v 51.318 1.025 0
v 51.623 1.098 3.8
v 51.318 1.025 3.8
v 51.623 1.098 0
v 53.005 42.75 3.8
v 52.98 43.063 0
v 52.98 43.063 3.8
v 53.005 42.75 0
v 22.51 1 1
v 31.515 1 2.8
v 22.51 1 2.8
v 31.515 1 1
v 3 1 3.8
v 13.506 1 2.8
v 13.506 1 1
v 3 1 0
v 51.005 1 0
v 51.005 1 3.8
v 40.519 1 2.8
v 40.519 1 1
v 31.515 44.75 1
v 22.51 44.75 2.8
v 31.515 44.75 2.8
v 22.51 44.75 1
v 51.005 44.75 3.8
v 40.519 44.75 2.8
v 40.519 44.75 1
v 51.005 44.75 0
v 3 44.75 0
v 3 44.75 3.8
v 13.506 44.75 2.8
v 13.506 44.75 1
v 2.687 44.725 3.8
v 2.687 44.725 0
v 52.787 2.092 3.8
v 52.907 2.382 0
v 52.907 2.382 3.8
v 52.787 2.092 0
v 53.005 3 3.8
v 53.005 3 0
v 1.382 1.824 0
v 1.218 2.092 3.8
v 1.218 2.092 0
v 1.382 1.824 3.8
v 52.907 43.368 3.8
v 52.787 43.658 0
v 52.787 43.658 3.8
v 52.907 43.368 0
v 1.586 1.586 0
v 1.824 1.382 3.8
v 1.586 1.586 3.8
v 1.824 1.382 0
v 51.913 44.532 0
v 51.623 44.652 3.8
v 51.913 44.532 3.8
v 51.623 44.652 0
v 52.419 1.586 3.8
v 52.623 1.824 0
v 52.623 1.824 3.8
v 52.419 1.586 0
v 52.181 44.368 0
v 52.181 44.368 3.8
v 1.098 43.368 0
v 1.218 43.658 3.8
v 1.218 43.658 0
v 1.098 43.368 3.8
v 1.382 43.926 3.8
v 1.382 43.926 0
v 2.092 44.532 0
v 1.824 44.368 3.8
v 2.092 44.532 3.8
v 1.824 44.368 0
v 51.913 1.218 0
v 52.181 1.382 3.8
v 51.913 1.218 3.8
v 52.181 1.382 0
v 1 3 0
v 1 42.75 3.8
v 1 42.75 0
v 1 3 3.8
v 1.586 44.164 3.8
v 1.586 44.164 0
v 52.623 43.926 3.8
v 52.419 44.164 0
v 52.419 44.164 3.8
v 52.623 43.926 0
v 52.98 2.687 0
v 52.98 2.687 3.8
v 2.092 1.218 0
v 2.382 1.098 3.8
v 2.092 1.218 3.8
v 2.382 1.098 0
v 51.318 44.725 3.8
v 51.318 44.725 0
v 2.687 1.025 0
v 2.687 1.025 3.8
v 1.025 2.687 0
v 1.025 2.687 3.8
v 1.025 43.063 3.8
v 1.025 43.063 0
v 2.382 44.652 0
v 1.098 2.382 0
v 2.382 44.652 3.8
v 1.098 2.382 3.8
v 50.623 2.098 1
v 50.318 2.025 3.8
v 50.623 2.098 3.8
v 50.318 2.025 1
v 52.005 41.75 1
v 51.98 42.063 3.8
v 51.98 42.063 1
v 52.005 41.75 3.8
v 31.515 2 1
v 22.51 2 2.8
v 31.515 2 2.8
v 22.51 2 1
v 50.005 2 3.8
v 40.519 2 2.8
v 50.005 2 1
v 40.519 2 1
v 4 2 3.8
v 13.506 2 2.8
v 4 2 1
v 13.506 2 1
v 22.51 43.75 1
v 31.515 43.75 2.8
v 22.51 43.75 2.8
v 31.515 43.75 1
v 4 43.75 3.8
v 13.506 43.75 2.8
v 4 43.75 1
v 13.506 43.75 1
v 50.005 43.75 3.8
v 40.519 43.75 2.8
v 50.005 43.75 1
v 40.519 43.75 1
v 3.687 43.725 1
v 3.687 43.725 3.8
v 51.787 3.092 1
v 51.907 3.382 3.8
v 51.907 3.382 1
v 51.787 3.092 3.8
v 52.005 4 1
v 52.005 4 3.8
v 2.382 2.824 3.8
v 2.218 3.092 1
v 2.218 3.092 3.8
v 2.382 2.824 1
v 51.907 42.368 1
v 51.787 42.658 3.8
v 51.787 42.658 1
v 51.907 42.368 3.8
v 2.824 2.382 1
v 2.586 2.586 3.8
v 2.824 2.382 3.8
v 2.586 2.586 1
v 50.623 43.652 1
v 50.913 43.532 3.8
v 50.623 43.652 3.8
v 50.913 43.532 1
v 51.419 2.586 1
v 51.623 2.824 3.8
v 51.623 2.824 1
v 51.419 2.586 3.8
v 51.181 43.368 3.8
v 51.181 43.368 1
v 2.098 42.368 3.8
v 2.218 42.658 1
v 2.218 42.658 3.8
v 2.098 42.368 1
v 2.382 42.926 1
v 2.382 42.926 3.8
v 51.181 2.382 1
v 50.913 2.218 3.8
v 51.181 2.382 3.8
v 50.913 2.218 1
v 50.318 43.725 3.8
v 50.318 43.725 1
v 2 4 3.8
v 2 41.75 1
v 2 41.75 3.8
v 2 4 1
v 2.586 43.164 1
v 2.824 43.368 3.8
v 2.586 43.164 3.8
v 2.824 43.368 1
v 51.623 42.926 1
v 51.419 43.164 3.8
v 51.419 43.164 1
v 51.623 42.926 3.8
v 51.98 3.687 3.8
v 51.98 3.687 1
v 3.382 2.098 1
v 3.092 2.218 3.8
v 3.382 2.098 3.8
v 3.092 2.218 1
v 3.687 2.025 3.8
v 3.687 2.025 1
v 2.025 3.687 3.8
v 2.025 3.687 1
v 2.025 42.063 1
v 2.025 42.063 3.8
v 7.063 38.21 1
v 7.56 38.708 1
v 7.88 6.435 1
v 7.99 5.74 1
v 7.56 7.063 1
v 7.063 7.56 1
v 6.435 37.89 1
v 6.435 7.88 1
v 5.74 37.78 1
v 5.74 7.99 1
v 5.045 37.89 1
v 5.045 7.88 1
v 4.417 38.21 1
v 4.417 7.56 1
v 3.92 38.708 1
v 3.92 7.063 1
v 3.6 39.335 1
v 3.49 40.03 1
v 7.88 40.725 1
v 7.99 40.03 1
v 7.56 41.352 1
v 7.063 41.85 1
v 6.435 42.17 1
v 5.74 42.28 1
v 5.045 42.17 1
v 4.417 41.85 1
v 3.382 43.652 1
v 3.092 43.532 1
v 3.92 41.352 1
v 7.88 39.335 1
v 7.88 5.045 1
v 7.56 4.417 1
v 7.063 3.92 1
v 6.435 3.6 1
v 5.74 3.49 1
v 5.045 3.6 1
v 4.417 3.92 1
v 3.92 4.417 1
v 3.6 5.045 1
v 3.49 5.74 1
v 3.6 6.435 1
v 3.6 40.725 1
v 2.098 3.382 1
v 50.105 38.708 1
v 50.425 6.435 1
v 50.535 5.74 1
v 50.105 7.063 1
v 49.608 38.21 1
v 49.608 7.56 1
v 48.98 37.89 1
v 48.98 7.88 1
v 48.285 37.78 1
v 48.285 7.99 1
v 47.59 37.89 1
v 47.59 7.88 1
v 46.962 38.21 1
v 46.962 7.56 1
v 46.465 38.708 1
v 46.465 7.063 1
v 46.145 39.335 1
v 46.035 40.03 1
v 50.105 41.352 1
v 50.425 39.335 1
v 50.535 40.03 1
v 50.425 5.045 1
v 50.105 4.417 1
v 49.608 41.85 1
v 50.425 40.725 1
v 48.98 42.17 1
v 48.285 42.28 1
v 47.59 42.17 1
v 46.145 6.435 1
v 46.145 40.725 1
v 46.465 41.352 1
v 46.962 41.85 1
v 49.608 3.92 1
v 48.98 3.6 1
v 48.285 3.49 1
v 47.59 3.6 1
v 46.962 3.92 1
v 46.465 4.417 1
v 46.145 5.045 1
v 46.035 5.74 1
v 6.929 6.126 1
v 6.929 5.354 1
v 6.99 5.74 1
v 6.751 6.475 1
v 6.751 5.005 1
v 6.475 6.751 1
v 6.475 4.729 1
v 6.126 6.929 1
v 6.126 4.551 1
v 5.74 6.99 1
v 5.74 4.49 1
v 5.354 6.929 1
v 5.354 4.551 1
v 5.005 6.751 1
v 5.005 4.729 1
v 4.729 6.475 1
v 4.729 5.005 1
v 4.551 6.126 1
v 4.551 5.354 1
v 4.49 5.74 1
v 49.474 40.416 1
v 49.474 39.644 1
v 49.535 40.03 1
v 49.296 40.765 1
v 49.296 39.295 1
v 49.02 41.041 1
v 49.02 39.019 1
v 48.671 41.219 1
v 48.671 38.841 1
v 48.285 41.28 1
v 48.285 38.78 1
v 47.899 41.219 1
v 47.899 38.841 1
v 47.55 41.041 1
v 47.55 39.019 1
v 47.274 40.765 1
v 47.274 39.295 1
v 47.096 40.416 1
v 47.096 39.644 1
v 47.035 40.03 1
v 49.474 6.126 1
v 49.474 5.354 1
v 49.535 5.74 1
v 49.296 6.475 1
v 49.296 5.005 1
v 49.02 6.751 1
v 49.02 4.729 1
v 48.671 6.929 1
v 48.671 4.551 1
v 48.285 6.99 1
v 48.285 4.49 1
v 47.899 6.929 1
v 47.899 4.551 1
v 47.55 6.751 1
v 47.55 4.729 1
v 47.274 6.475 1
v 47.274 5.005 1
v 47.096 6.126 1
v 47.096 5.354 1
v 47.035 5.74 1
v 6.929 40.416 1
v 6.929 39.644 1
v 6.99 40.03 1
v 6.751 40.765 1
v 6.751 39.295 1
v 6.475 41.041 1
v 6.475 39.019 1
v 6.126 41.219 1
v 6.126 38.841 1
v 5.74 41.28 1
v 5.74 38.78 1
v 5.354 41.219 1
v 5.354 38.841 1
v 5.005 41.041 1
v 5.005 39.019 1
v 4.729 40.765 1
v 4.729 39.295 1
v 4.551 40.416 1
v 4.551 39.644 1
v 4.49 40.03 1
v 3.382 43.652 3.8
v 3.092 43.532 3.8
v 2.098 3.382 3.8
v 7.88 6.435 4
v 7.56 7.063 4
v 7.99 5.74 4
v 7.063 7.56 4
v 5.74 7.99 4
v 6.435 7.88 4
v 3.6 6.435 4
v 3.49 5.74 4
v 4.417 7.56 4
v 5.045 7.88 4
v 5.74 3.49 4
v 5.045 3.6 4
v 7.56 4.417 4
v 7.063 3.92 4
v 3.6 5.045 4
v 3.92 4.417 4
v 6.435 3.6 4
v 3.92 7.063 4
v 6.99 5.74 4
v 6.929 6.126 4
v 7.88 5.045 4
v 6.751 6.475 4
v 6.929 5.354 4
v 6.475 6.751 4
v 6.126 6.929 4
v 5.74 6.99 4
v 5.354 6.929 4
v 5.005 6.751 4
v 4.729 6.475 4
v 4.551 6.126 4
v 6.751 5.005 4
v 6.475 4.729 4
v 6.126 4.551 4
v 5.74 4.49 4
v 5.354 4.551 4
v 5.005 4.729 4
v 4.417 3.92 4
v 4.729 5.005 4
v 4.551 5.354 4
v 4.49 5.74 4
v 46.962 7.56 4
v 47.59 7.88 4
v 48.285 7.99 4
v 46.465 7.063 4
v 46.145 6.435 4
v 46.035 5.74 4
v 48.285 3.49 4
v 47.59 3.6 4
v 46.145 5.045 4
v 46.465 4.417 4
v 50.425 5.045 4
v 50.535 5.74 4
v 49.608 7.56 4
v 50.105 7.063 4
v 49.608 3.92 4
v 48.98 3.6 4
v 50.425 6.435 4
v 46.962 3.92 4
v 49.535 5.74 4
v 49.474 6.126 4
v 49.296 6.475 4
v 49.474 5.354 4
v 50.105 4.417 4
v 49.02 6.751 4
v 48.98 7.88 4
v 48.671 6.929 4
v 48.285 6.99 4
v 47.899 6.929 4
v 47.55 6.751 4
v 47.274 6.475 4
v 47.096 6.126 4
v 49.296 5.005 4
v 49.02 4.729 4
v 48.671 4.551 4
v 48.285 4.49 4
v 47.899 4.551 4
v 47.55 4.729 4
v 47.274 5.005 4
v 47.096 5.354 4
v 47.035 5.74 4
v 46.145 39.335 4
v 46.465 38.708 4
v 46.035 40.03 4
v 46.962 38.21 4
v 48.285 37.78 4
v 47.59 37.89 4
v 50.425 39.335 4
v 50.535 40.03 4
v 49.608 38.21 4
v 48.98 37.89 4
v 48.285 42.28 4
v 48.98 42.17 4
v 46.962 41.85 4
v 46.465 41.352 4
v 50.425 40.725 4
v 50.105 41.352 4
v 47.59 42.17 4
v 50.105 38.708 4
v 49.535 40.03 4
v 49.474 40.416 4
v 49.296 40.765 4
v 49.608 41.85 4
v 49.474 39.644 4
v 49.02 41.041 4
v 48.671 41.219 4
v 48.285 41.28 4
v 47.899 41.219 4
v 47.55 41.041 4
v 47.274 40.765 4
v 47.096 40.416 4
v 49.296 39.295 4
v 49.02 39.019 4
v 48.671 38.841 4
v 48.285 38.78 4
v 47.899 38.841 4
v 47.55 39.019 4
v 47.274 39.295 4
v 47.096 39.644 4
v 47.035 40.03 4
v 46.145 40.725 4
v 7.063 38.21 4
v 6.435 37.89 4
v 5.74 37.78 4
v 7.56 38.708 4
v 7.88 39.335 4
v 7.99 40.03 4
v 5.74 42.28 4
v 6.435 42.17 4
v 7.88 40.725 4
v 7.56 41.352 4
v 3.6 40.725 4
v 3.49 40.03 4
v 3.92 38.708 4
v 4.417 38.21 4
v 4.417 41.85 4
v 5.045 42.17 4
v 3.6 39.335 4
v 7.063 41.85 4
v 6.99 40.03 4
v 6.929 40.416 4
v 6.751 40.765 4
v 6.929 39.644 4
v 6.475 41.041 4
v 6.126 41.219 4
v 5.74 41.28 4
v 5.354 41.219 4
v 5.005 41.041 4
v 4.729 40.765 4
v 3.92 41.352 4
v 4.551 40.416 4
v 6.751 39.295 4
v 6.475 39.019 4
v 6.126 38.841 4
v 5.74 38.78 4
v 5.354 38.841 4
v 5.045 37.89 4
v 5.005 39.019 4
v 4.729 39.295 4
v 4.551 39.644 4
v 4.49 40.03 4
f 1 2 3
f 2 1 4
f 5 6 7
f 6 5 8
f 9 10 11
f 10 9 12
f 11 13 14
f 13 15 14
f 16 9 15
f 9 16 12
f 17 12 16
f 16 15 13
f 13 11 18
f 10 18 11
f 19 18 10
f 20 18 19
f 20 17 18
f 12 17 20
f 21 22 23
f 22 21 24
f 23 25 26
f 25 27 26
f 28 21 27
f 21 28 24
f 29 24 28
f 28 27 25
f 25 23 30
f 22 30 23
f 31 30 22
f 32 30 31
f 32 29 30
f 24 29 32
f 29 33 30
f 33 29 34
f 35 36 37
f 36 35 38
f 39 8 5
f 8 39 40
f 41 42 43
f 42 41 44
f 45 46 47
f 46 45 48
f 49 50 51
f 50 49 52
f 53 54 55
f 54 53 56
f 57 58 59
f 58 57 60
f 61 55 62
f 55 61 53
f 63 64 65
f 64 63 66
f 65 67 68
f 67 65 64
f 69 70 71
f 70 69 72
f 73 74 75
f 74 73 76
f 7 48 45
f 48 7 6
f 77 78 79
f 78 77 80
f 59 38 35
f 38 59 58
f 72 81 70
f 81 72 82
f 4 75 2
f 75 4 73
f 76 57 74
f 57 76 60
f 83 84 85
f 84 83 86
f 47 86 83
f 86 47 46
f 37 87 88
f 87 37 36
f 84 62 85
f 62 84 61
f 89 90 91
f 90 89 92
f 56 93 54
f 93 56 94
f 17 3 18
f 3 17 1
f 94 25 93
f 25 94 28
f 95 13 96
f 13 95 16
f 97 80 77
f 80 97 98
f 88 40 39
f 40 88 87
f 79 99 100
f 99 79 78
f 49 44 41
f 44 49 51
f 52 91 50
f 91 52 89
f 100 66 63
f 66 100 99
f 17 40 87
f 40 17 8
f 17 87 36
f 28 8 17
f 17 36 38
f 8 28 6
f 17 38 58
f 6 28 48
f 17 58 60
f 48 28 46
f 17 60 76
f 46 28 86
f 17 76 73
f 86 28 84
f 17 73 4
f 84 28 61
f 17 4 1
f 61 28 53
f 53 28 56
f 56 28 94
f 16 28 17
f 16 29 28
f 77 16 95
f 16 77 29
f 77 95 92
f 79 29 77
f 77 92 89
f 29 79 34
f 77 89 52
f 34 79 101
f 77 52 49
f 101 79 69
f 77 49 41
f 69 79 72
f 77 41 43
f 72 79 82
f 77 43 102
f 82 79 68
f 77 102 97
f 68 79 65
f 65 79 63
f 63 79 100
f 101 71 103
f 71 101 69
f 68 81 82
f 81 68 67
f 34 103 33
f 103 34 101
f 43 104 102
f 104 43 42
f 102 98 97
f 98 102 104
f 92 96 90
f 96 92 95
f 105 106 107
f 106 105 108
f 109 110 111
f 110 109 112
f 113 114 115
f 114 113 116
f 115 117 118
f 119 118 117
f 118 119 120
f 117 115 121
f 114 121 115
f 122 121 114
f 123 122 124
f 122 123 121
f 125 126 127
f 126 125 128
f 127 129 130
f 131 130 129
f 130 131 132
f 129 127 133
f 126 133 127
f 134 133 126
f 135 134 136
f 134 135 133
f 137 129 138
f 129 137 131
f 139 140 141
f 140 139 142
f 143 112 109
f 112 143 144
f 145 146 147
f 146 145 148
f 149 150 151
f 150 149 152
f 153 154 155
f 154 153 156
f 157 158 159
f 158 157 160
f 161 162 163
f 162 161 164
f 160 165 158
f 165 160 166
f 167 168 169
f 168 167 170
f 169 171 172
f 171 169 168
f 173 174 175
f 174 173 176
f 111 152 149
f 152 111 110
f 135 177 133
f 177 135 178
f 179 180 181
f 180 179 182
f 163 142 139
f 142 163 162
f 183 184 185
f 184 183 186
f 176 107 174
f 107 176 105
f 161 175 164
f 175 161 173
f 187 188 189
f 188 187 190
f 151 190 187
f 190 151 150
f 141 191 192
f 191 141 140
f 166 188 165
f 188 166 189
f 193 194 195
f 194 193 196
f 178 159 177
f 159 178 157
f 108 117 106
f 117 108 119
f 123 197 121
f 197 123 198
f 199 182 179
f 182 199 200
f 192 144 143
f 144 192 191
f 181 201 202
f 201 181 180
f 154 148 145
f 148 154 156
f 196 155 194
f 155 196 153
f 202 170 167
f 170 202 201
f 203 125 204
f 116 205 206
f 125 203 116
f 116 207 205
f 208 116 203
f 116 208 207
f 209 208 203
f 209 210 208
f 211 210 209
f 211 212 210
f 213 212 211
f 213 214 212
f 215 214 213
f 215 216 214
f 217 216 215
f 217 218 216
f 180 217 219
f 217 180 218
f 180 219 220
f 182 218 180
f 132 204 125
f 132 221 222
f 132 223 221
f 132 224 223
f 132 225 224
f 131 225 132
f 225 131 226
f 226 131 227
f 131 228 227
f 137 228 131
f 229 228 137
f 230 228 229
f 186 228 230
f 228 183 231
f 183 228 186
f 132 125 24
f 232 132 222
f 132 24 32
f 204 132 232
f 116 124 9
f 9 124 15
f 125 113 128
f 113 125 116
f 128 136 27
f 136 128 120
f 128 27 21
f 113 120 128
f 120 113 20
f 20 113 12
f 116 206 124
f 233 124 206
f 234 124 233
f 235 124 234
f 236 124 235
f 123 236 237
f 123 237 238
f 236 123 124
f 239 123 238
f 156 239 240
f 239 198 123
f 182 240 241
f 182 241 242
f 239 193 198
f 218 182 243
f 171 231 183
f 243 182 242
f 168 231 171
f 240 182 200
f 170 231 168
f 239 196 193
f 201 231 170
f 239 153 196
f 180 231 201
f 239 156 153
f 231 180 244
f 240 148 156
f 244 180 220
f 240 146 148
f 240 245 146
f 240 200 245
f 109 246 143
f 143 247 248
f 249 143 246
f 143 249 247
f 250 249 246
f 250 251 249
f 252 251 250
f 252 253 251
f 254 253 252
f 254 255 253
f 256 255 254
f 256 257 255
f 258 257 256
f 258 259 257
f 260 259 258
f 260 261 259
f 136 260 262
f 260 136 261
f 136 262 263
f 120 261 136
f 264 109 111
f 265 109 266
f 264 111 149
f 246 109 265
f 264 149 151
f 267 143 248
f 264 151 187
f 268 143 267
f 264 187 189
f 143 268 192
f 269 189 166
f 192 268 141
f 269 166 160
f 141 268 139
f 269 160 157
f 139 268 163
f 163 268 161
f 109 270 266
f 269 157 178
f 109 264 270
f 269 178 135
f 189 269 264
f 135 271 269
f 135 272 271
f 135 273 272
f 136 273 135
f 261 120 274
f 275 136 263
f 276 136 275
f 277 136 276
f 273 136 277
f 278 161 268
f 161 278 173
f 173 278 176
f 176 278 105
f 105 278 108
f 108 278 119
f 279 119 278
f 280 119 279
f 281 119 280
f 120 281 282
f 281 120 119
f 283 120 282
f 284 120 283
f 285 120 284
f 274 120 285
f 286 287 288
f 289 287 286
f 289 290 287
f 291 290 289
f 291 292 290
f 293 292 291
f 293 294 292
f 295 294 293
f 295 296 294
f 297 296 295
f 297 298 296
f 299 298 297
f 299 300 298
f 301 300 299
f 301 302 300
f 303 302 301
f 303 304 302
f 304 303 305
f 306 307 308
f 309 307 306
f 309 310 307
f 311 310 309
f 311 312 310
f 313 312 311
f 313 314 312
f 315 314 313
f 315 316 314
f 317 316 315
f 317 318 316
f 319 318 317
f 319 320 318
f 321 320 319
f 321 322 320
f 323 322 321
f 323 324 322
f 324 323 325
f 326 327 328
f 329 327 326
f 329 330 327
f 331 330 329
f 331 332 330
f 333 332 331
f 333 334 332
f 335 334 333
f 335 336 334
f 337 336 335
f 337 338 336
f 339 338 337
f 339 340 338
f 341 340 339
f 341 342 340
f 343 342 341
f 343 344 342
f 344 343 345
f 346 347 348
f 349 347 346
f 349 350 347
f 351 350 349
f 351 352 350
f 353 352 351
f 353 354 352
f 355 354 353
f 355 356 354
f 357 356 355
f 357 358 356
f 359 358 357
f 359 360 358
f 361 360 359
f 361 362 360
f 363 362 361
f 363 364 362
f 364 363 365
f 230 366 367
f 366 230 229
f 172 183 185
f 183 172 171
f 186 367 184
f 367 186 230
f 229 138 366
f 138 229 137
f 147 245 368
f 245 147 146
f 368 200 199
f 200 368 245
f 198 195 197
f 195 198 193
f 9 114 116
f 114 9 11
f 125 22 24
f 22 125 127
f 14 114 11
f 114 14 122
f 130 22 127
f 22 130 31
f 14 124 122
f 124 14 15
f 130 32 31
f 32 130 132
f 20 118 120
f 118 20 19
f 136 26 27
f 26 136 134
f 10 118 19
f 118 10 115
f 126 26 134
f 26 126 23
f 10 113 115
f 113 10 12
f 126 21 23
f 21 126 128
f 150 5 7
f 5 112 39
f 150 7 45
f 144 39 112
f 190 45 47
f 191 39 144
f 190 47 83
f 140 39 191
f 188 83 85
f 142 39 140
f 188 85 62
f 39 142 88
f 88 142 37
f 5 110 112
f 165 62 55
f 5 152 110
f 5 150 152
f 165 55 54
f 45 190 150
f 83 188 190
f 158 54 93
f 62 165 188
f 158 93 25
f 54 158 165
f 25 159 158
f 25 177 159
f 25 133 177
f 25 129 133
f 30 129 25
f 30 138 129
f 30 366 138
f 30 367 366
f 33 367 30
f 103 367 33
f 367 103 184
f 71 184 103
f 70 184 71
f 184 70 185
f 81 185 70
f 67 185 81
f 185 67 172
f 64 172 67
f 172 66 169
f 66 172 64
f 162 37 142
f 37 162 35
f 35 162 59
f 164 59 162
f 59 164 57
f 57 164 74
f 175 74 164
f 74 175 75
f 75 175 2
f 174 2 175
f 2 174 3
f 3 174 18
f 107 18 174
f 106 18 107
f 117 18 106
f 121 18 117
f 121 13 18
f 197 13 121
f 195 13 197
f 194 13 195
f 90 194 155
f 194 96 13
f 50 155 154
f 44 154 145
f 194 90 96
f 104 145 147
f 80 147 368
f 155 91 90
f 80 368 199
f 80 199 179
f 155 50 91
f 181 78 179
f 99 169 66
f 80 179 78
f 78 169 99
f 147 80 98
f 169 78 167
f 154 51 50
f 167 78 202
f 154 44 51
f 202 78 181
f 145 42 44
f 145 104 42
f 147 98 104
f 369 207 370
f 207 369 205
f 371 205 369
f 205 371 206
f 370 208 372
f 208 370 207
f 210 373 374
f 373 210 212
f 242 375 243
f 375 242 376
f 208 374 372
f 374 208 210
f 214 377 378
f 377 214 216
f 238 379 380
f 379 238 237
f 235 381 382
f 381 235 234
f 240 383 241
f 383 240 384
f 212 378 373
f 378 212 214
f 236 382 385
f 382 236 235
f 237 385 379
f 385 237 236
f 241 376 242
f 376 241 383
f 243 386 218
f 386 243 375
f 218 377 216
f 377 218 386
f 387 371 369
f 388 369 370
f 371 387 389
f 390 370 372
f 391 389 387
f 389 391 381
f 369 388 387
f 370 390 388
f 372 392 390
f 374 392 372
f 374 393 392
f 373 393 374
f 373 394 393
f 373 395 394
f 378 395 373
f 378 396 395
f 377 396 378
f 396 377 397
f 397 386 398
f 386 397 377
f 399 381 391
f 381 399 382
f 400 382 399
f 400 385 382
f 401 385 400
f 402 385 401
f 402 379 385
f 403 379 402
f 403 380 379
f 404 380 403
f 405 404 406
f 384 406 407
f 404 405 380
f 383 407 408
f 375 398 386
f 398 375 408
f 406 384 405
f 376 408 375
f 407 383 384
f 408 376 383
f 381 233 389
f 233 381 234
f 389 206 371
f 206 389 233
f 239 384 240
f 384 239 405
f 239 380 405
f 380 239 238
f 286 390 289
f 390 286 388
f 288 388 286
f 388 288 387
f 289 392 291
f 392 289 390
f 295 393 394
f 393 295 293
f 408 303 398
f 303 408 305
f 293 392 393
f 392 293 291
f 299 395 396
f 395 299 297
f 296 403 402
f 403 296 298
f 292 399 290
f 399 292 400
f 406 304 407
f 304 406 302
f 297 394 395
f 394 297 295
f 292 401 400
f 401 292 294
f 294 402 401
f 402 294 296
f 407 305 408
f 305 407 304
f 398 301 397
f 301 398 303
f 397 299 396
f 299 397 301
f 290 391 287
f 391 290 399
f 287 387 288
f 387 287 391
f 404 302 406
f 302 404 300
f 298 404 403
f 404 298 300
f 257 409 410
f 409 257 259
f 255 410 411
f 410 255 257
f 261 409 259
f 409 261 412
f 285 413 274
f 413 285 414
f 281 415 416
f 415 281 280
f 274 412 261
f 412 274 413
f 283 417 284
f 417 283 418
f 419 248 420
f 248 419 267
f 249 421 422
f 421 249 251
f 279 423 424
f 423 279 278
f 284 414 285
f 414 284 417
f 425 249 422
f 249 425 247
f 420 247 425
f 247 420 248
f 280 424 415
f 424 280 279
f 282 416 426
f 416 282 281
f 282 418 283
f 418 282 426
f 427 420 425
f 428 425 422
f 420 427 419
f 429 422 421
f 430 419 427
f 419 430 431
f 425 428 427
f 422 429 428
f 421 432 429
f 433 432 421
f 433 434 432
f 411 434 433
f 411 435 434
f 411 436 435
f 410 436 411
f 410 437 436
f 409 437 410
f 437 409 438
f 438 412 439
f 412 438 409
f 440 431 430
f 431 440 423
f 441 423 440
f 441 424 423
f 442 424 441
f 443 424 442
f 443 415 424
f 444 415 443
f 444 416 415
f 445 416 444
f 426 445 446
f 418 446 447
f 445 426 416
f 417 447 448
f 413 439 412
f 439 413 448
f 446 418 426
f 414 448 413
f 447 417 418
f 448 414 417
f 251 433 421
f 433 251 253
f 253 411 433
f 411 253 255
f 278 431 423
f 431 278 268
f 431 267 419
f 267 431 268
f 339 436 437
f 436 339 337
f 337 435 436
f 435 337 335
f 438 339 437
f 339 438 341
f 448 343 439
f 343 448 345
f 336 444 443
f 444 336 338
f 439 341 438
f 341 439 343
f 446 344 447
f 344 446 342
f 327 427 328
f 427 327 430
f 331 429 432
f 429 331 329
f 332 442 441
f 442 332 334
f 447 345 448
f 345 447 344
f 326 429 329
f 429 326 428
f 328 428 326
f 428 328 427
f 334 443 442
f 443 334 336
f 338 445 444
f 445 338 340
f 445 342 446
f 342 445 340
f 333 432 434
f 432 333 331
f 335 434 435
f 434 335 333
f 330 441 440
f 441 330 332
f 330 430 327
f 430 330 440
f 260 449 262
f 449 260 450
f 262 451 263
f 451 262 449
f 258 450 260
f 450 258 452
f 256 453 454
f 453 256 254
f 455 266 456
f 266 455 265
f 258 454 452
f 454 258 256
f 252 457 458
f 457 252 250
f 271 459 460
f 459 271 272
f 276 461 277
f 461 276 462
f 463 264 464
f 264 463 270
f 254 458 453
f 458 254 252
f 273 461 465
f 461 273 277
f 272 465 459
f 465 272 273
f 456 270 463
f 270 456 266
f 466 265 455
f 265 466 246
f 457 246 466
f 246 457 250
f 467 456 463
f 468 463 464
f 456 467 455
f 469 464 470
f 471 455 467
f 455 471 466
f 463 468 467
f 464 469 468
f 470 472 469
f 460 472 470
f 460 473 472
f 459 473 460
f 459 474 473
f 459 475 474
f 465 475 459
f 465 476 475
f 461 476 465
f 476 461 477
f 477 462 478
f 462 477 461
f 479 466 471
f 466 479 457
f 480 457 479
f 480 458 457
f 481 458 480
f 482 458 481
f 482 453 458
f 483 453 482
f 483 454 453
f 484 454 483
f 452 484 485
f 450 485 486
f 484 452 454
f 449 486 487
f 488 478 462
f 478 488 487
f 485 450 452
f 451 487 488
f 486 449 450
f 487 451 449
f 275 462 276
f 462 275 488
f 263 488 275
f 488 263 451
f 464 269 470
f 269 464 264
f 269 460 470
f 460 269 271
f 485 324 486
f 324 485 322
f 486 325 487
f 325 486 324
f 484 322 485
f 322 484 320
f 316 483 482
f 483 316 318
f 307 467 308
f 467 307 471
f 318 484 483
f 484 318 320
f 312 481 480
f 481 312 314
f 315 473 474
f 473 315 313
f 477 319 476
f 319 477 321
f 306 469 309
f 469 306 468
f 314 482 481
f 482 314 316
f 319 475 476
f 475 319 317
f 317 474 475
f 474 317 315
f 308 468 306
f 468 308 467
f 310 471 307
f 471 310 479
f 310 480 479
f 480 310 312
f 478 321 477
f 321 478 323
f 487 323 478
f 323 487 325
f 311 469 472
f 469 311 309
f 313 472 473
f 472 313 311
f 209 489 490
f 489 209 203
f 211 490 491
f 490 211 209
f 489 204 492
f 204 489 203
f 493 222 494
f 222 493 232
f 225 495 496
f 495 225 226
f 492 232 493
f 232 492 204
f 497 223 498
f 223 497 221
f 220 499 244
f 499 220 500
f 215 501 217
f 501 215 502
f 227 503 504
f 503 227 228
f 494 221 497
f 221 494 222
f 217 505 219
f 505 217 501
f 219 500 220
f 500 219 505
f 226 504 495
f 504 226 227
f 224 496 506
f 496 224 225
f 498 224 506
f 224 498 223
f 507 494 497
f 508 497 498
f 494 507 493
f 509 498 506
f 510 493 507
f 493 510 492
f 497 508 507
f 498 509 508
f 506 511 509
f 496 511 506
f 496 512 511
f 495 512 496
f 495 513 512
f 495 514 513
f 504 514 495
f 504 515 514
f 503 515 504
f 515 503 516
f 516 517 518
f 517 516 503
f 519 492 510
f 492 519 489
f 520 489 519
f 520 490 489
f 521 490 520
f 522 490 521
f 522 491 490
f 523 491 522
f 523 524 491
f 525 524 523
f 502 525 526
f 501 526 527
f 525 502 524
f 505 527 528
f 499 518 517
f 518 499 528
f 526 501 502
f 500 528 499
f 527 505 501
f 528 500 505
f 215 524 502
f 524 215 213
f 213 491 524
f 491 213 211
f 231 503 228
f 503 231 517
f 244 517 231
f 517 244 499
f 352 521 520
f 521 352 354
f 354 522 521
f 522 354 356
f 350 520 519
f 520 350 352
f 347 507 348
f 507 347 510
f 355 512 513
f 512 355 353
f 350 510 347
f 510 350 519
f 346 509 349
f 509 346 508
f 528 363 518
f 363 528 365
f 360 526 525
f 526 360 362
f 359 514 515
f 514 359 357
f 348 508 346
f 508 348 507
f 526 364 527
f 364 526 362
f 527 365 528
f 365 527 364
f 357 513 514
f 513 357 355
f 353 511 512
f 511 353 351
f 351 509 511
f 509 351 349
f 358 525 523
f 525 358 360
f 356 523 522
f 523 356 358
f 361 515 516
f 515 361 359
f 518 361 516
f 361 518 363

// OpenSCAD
// file: ProjectBox/oled91.scad
// Copyright (c) 2024 Chris Lee and contibuters.
// Licensed under the MIT license. See LICENSE file in the project root for details.

// This is a simple model of a 0.91" OLED module.
// E.g., https://www.aliexpress.us/item/2251832485915041.html
module oled91() {
  s = inch * 0.1;
  pin_len = 4;
  color("silver") {
    for (i = [0: 3]) {
      translate([s*i+pad_space, pad_space/2, -pin_len]) cube([0.25, 0.25, pin_len]);
    }
  }
  color("gray") cube([12, 38, 1]);
  translate([0, 5.5, 1]) color("black") cube([12, 28, 1]);
}
// file: ProjectBox/util.scad
// Copyright (c) 2024 Chris Lee and contibuters.
// Licensed under the MIT license. See LICENSE file in the project root for details.

include <MCAD/units.scad>

ones = [1, 1, 1];

module RX(angle) {
  rotate(angle, X) children();
}
module RY(angle) {
  rotate(angle, Y) children();
}
module RZ(angle) {
  rotate(angle, Z) children();
}
module TX(dist) {
  translate(X*dist) children();
}
module TX(dist) {
  translate(X*dist) children();
}
module TY(dist) {
  translate(Y*dist) children();
}
module TZ(dist) {
  translate(Z*dist) children();
}

// x-extra and y-extra adjust the x/y offset at the far-x and far-y corners.
module at_corners(dims, corner_offset, to_draw=undef, x_extra=0.0, y_extra=0.0) {
  o = corner_offset;
  if (!to_draw || to_draw[0]) translate([o, o, 0]) children();
  if (!to_draw || to_draw[1]) translate([dims[0]-o+x_extra, o, 0]) rotate(90, Z) children();
  if (!to_draw || to_draw[2]) translate([dims[0]-o+x_extra, dims[1]-o+y_extra, 0])
				rotate(180, Z) children();
  if (!to_draw || to_draw[3]) translate([o, dims[1]-o+y_extra, 0]) rotate(270, Z) children();
}
// file: ProjectBox/screw_tab.scad
// Copyright (c) 2024 Chris Lee and contibuters.
// Licensed under the MIT license. See LICENSE file in the project root for details.

include <MCAD/units.scad>

// Screw tab is drawn in the y-direction (attached on -Y side).
module screw_tab(tab_width=10, thickness=2, screw_radius=2) {
  $fn=40;
  dz = thickness;
  sd = tab_width;
  sr = tab_width / 2;
  translate([-sr, -epsilon, 0]) difference() {
    union() {
      cube([sd, sr, dz]);
      translate([sr, sr, 0]) cylinder(dz, sr, sr);
    }
    translate([sr, sr, -epsilon]) cylinder(dz+1, screw_radius, screw_radius);
  }
}
// file: ProjectBox/rounded_box.scad
// Copyright (c) 2024 Chris Lee and contibuters.
// Licensed under the MIT license. See LICENSE file in the project root for details.

module rounded_box(dims, r) {
  x = dims[0];
  y = dims[1];
  z = dims[2];
  module cyl() {
    cylinder(z, r, r, $fn=40);
  }
  if (r == 0) {
    cube(r);
  } else {
    hull() {
      translate([r, r, 0]) cyl();
      translate([x-r, r, 0]) cyl();
      translate([x-r, y-r, 0]) cyl();
      translate([r, y-r, 0]) cyl();
    }
  }
}
// file: board.scad
// Copyright (c) 2026 Chris Lee and contributors.
// Licensed under the MIT license. See LICENSE file in the project root for details.

include <ProjectBox/project_box.scad>
include <ProjectBox/oled91.scad>
include <gui.scad>

board_thickness = 1.6;
// mm between pads in perf-board (1/10 inch)
pad_space = 2.54;
// This is the size of the PCB, for use in the design of the EBox.
board_dims = [18.75 * pad_space, 15.5 * pad_space, board_thickness];
// This is the distance of each edge of the PCB to the center of the
//  screw holes for mounting the board at each corner.
mount_offset = pad_space;

// This is the position of the OLED screen with respect to the PCB.
module room133_to_oled_frame() {
  u = pad_space;
  translate([u*8.1, 1, 12]) children();
}

// This is a model of the Room133 PCBA with OLED screen, for use in EBox design.
module Room133_board() {
  // Board imported from KiCad (VRML) -> meshlab.
  translate([board_dims[0]/2, board_dims[1]/2, board_dims[2]/2]) color("white")
    import(file="Room133.stl", convexity=3);

  // Optionally add the OLED screen
  if (oled) {
    room133_to_oled_frame() oled91();
  }
}
// file: ProjectBox/shtc3_window.scad
// Copyright (c) 2024 Chris Lee and contibuters.
// Licensed under the MIT license. See LICENSE file in the project root for details.

module shtc3_window(offset, space_above_board, wall, negative, z_gap = 0.0) {
  sz = [3, 3, 1];
  translate(offset) {
    if (negative) {
      translate([0, 0, z_gap-1]) {
	cube([sz[0], sz[1], space_above_board+wall+2-z_gap]);
      }
    } else {
      translate([-wall, -wall, z_gap+epsilon]) {
	cube([sz[0] + 2*wall, sz[1] + 2*wall, space_above_board-z_gap]);
      }
    }
  }
}
// file: ProjectBox/mounts.scad
// Copyright (c) 2024 Chris Lee and contibuters.
// Licensed under the MIT license. See LICENSE file in the project root for details.

module screw_mount(height, wall, screw_radius) {
  $fn = 20;
  difference() {
    cylinder(height, screw_radius+wall, screw_radius+wall);
    cylinder(height+epsilon, screw_radius, screw_radius);
  }
}
// file: ProjectBox/project_box.scad
// Copyright (c) 2024 Chris Lee and contibuters.
// Licensed under the MIT license. See LICENSE file in the project root for details.

include <MCAD/units.scad>
include <rounded_box.scad>
include <screw_tab.scad>
use <util.scad>

bump_d = 0.8;

module in_board_frame(outer_dims, board_dims, space_below_board) {
  translate([(outer_dims[0] - board_dims[0])/2,
	     (outer_dims[1] - board_dims[1])/2,
	     space_below_board])
    children();
}

default_tab_len = 10;
function tab_length(dim, num_tabs=2) = min(default_tab_len, dim/(2*(num_tabs+1)));
function tab_offset(i, dim, num_tabs=2) = (dim*(i+1)/(num_tabs+1))-0.5*tab_length(dim, num_tabs);

module project_box(outer_dims,
		   wall_thickness=1,
		   gap=0.1,
		   // If true put snaps for top/bottom on sides rather than front/back.
		   snaps_on_sides=false,
		   corner_radius=0.0,
		   top=true,
		   top_cutouts=undef,
		   ym_cutouts=undef,
		   screw_tab_d=0) {
  wall = wall_thickness;
  num_snaps = 2;

  // Length of side of box snap-tabs will be added.
  tabdim = snaps_on_sides ? outer_dims[1] : outer_dims[0];
  // Length of snap-tab holes (tabs shrinks slightly to fit).
  tablen = tab_length(tabdim, num_snaps);
  // Difference between tab length and tab hole length;
  tab_gap = 1;

  // Space between bottom of box and top of box.
  fit_gap = 0.02;

  // The bottom of the box fits inside the shell of the top.
  dims = top ? outer_dims : outer_dims - (2*wall+fit_gap) * [1, 1, 1];

  // Tabs for clicking base into start at wall-height, are 2*wall-height high.
  // Allow 2*wall_height above bump for hight of bottom part of box.
  tab_depth = min(bump_d, dims[2] - 3*wall);
  bottom_height = wall+tab_depth+2*wall;

  module bump() {
    dh = bump_d - fit_gap;
    rotate(90, Y) cylinder(tablen-tab_gap, dh, dh, $fn=20);
  }

  module hump_positives(humps, space_above_board, corner_radius, wall) {
    for (hump = humps) {
      offset = hump[0];
      outer_dims = hump[1];
      z_start = gap * 2 + wall + space_below_board + board_thickness + space_above_board + epsilon;
      translate([offset[0], offset[1], z_start]) rounded_box(outer_dims, corner_radius);
    }
  }
  module hump_negatives(humps, space_above_board, corner_radius, wall) {
    for (hump = humps) {
      offset = hump[0];
      outer_dims = hump[1];
      z_start = gap * 2 + wall + space_below_board + board_thickness + space_above_board - epsilon - epsilon;
      translate([offset[0]+wall, offset[1]+wall, z_start])
	rounded_box(outer_dims-[wall*2, wall*2, wall], corner_radius);
    }
  }
  module cutouts(cutout_list, remove_len) {
    for (cutout = cutout_list) {
      offset = cutout[0];
      dims = cutout[1];
      translate([offset[0], offset[1], 0]) cube([dims[0], dims[1], remove_len]);
    }
  }

  wedge_dx = 2*wall;
  wedge_dy = min(outer_dims[1]-2*wall-corner_radius, 10);
  wedge_dz = wedge_dx;
  module wedge() {
    // Bump to stop the bottom of box to go too up into the top.
    translate([0, 0, bottom_height+fit_gap]) {
      // Start with cube, switch to wedge for printing.
      translate(Y*wedge_dy) rotate(90, X)
	linear_extrude(wedge_dy) polygon([[0, 0], [0, wedge_dz], [wedge_dx, 0]]);
    }
  }

  // The bottom of the box fits inside the shell of the top.
  translate(top ? [0,0,0] : wall*[1, 1, 0]) union() {
    difference() {
      // shell
      difference() {
	union() {
	  rounded_box(dims, corner_radius);
	  if (top)
	    hump_positives(bumps, space_above_board, corner_radius, wall);
	}
	iz = top ? (dims[2] - 2*wall) : dims[2];  // inner-z
	translate(ones*wall) rounded_box([dims[0] - wall*2, dims[1]-wall*2, iz], corner_radius);
	if (top) {
	  hump_negatives(bumps, space_above_board, corner_radius, wall);
	  // cutouts from the top surface
	  if (top_cutouts)
	    cutouts(top_cutouts, remove_len=100);
	  // cutouts from the y=0 surface
	  if (ym_cutouts)
	    translate([0, 1+wall, 0]) rotate([90, 0, 0]) cutouts(ym_cutouts, remove_len=(wall+2));
	}
      }

      if (!top) {
	// Box bottom

	// Cut off top.
	translate([-1, -1, bottom_height]) { cube(dims + 2 * ones); }
	// Make a slot for top to click into
	bottom_offset = -wall;  // offset to account for bottom fitting inside top.
	if (snaps_on_sides) {
	  for (isnap = [0:num_snaps-1]) {
	    y = tab_offset(isnap, tabdim, num_snaps) + bottom_offset;
	    translate([-1, y, wall]) cube([dims[0]+2, tablen, wall+tab_depth]);
	  }
	} else {
	  for (isnap = [0:num_snaps-1]) {
	    x = tab_offset(isnap, tabdim, num_snaps) + bottom_offset;
	    translate([x, -1, wall]) cube([tablen, dims[1]+2, wall+tab_depth]);
	  }
	}
      }	else {
	// Box top

	// Cut out for bottom
	translate(wall*[1, 1, -1]) {
	  rounded_box([dims[0]-2*wall, dims[1]-2*wall, wall*3], corner_radius);
	}
      }
    }

    // Board supports
    if (top) {
      // Snaps: Make bumps to click into slot in bottom.
      if (snaps_on_sides) {
	for (isnap = [0:num_snaps-1]) {
	  y = tab_offset(isnap, tabdim, num_snaps) + tab_gap/2;
	  translate([wall-epsilon, y, wall+gap/2]) rotate(90, Z) bump();
	  translate([dims[0]+epsilon-wall, y, wall+gap/2]) rotate(90, Z) bump();
	}
	translate([wall-epsilon, (outer_dims[1]-wedge_dy)/2, 0]) wedge();
	translate([outer_dims[0]-wall+epsilon, (outer_dims[1]+wedge_dy)/2, 0])
	  rotate(180, Z) wedge();
      } else {
	for (isnap = [0:num_snaps-1]) {
	  x = tab_offset(isnap, tabdim, num_snaps) + tab_gap/2;
	  translate([x, wall-epsilon, wall+gap/2]) bump();
	  translate([x, dims[1]+epsilon-wall, wall+gap/2]) bump();
	}
	translate([(outer_dims[0]+wedge_dy)/2, wall-epsilon, 0]) rotate(90, Z) wedge();
	translate([(outer_dims[0]-wedge_dy)/2, outer_dims[1]-wall+epsilon, 0])
	  rotate(270, Z) wedge();
      }
    }
  }

  if (top && screw_tab_d > 0) {
    translate([outer_dims[0]/2, outer_dims[1], 0])
      screw_tab(tab_width=screw_tab_d, thickness=2*wall, screw_radius=2);
  }
}

module holder_tab(wall_thickness, thickness=2, out_r=4, in_r=2) {
  translate(Z*wall_thickness) linear_extrude(thickness) {
    $fn = 20;
    y = epsilon;
    difference() {
      hull() {
	translate([0, epsilon-out_r]) circle(out_r);
	polygon([[-out_r, epsilon], [out_r, epsilon],
		 [out_r, 2*epsilon], [out_r, 2*epsilon]]);
      }
      translate([0, -out_r]) circle(in_r);
    }
  }
}
// file: gui.scad
// Copyright (c) 2026 Chris Lee and contibuters.
// Licensed under the MIT license. See LICENSE file in the project root for details.

// :GUI:
leak_check = false;
// :GUI:
oled = true;
// :GUI:
mount_tab = true;
// :GUI:
motion_light = true;
// :GUI:
motion = false;
// :GUI:
radar = false;
// :GUI:
show_vitamins = true;
// :GUI:
show_box = true;
// :GUI:
top = true;
// file: box.scad
// Copyright (c) 2026 Chris Lee and contributors.
// Licensed under the MIT license. See LICENSE file in the project root for details.

include <ProjectBox/project_box.scad>
include <ProjectBox/mounts.scad>
include <ProjectBox/shtc3_window.scad>
include <board.scad>

ones = [1, 1, 1];

// The walls of the EBox are 1mm thick.
wall_thickness = 1;
// Gap distance between PCB and ebox walls.
gap = 0.2;
// Round the edges of the EBox with a 2mm radius.
corner_radius = 2;

// The basic EBox only has 2mm space above the board.
space_above_board = 2;
// If the PCBA will have an OLED screen the tallest part of the box will be taller.
total_above_board = (oled || radar) ? 15 : space_above_board;
// This is the space below the box, used for the screw mounts.
space_below_board = 3;
// This is the space around the PCBA which the EBox should not intersect.
inner_dims = (board_dims
	      + Z*(space_above_board+space_below_board)
	      + 2*gap*ones);
// This is the size of the outer-surface of the EBox.
outer_dims = (inner_dims
	      + 2*ones*wall_thickness
	      + [2, 2, 0] * corner_radius);

// "Bump" to add on on top of EBox.
// - Zero-sized if neither radar nor OLED is included.
// - Space for radar if included.
// - Space for OLED (with a window) if OLED is included.
// This is the xyz offset of the bump from the 0,0,0 corner of the EBox.
b1o = radar
  ? [15, 8, outer_dims[2]-wall_thickness]
  : [0, 0, outer_dims[2]-wall_thickness];
// This is the outer dimension of the bump.
b1d = radar
  ? [outer_dims[0]-b1o[0]-8, outer_dims[1]-b1o[1], total_above_board-space_above_board]
  : [37, outer_dims[1]-b1o[1], total_above_board-space_above_board];

// This is the position of the PCBA within the EBox.
module in_Room133_board_frame(board_height=false) {
  zoffset = wall_thickness + (board_height ? space_below_board : 0);
  in_board_frame(outer_dims, board_dims, zoffset) children();
}

// This is a window from the top of the EBox with a wall down to the SHTC3 temp/humidity
//  sensor which isolates it from the air inside the resst of the EBox.
module shtc3_window(x, y, z_max, negative) {
  sz = [3, 3, 1];
  w = wall_thickness;
  translate([x, y, space_below_board + board_dims[2]]) {
    if (negative) {
      translate([0, 0, -1]) {
	cube([sz[0], sz[1], z_max+2]);
      }
    } else {
      translate([-w, -w, -0.5]) {
	cube([sz[0] + 2*w, sz[1] + 2*w, z_max]);
      }
    }
  }
}

// This is the module which constructs the EBox for the Room133 device.
module Room133_box(top) {
  wall = wall_thickness;
  screw_tab_d = mount_tab ? 10 : 0;

  shtc3_loc = [board_dims[0] - 4.2, 8.4];

  difference() {
    union() {
      // This is the main body of the EBox, without additional "bump" for OLED/radar.
      project_box(outer_dims,
		  wall_thickness=wall_thickness,
		  gap=gap,
		  corner_radius=corner_radius,
		  top=top,
		  screw_tab_d=screw_tab_d);
      if (top) {
	// Stuff to add on EBox top
	translate(b1o) {
	  // Positive space (outside) of OLED/radar bump.
	  rounded_box(b1d, corner_radius);
	}
	// Outer walls of SHTC3 window/well to isolate sensor from rest of the EBox.
	in_Room133_board_frame()
	  shtc3_window(shtc3_loc[0], shtc3_loc[1], space_above_board+wall, false);
      } else {
	// Stuff to add on EBox bottom
	in_Room133_board_frame() at_corners(board_dims, mount_offset)
	  screw_mount(space_below_board, wall, 1.25);
      }
    }
    // Cut outs.
    if (top) {
      // Negative space of OLED/radar bump.
      translate(b1o+[wall, wall, -epsilon]) rounded_box(b1d-wall*[2, 2, 1], corner_radius);
      if (oled) { // Oled cutout
	room133_to_oled_frame() translate ([4, 8, 5]) cube([12, 28, 20]);
      }
      // USB power-connector cutout
      translate([35, -1, space_below_board-1+0.001]) cube([11, 4, 6+epsilon]);
      // Connector cutouts
      in_Room133_board_frame() {
	if (motion_light) { // Hole for PIRL connector
	  translate([board_dims[0]-7.5, 14, space_below_board+1.6]) cube([7, 13, 50]);
	}
	if (motion) { // Hole for PIR connector
	  translate([board_dims[0]-12.8, 27.5, space_below_board+1.6]) cube([7, 11.5, 50]);
	}
	// Window for temp/humidity sensor
	shtc3_window(shtc3_loc[0], shtc3_loc[1], space_above_board+20, true);
	if (leak_check) {  // Hole for leak-detector connector.
	  translate([board_dims[0]-13.7, 5.5, space_below_board+1.6]) cube([8.4, 8, 50]);
	}
      }
      if (radar) {
	translate([-1, -1, total_above_board+space_below_board+board_thickness+2*gap+0.2])
	  cube([outer_dims[0]+2, outer_dims[1]+2, 10]);
	// translate([-1, -1, -1]) cube([100, 20, 40]);
      }
    }
  }
}
// main file
// Copyright (c) 2026 Chris Lee and contributors.
// Licensed under the MIT license. See LICENSE file in the project root for details.

include <box.scad>
include <gui.scad>

top = false;

Room133_box(top);
